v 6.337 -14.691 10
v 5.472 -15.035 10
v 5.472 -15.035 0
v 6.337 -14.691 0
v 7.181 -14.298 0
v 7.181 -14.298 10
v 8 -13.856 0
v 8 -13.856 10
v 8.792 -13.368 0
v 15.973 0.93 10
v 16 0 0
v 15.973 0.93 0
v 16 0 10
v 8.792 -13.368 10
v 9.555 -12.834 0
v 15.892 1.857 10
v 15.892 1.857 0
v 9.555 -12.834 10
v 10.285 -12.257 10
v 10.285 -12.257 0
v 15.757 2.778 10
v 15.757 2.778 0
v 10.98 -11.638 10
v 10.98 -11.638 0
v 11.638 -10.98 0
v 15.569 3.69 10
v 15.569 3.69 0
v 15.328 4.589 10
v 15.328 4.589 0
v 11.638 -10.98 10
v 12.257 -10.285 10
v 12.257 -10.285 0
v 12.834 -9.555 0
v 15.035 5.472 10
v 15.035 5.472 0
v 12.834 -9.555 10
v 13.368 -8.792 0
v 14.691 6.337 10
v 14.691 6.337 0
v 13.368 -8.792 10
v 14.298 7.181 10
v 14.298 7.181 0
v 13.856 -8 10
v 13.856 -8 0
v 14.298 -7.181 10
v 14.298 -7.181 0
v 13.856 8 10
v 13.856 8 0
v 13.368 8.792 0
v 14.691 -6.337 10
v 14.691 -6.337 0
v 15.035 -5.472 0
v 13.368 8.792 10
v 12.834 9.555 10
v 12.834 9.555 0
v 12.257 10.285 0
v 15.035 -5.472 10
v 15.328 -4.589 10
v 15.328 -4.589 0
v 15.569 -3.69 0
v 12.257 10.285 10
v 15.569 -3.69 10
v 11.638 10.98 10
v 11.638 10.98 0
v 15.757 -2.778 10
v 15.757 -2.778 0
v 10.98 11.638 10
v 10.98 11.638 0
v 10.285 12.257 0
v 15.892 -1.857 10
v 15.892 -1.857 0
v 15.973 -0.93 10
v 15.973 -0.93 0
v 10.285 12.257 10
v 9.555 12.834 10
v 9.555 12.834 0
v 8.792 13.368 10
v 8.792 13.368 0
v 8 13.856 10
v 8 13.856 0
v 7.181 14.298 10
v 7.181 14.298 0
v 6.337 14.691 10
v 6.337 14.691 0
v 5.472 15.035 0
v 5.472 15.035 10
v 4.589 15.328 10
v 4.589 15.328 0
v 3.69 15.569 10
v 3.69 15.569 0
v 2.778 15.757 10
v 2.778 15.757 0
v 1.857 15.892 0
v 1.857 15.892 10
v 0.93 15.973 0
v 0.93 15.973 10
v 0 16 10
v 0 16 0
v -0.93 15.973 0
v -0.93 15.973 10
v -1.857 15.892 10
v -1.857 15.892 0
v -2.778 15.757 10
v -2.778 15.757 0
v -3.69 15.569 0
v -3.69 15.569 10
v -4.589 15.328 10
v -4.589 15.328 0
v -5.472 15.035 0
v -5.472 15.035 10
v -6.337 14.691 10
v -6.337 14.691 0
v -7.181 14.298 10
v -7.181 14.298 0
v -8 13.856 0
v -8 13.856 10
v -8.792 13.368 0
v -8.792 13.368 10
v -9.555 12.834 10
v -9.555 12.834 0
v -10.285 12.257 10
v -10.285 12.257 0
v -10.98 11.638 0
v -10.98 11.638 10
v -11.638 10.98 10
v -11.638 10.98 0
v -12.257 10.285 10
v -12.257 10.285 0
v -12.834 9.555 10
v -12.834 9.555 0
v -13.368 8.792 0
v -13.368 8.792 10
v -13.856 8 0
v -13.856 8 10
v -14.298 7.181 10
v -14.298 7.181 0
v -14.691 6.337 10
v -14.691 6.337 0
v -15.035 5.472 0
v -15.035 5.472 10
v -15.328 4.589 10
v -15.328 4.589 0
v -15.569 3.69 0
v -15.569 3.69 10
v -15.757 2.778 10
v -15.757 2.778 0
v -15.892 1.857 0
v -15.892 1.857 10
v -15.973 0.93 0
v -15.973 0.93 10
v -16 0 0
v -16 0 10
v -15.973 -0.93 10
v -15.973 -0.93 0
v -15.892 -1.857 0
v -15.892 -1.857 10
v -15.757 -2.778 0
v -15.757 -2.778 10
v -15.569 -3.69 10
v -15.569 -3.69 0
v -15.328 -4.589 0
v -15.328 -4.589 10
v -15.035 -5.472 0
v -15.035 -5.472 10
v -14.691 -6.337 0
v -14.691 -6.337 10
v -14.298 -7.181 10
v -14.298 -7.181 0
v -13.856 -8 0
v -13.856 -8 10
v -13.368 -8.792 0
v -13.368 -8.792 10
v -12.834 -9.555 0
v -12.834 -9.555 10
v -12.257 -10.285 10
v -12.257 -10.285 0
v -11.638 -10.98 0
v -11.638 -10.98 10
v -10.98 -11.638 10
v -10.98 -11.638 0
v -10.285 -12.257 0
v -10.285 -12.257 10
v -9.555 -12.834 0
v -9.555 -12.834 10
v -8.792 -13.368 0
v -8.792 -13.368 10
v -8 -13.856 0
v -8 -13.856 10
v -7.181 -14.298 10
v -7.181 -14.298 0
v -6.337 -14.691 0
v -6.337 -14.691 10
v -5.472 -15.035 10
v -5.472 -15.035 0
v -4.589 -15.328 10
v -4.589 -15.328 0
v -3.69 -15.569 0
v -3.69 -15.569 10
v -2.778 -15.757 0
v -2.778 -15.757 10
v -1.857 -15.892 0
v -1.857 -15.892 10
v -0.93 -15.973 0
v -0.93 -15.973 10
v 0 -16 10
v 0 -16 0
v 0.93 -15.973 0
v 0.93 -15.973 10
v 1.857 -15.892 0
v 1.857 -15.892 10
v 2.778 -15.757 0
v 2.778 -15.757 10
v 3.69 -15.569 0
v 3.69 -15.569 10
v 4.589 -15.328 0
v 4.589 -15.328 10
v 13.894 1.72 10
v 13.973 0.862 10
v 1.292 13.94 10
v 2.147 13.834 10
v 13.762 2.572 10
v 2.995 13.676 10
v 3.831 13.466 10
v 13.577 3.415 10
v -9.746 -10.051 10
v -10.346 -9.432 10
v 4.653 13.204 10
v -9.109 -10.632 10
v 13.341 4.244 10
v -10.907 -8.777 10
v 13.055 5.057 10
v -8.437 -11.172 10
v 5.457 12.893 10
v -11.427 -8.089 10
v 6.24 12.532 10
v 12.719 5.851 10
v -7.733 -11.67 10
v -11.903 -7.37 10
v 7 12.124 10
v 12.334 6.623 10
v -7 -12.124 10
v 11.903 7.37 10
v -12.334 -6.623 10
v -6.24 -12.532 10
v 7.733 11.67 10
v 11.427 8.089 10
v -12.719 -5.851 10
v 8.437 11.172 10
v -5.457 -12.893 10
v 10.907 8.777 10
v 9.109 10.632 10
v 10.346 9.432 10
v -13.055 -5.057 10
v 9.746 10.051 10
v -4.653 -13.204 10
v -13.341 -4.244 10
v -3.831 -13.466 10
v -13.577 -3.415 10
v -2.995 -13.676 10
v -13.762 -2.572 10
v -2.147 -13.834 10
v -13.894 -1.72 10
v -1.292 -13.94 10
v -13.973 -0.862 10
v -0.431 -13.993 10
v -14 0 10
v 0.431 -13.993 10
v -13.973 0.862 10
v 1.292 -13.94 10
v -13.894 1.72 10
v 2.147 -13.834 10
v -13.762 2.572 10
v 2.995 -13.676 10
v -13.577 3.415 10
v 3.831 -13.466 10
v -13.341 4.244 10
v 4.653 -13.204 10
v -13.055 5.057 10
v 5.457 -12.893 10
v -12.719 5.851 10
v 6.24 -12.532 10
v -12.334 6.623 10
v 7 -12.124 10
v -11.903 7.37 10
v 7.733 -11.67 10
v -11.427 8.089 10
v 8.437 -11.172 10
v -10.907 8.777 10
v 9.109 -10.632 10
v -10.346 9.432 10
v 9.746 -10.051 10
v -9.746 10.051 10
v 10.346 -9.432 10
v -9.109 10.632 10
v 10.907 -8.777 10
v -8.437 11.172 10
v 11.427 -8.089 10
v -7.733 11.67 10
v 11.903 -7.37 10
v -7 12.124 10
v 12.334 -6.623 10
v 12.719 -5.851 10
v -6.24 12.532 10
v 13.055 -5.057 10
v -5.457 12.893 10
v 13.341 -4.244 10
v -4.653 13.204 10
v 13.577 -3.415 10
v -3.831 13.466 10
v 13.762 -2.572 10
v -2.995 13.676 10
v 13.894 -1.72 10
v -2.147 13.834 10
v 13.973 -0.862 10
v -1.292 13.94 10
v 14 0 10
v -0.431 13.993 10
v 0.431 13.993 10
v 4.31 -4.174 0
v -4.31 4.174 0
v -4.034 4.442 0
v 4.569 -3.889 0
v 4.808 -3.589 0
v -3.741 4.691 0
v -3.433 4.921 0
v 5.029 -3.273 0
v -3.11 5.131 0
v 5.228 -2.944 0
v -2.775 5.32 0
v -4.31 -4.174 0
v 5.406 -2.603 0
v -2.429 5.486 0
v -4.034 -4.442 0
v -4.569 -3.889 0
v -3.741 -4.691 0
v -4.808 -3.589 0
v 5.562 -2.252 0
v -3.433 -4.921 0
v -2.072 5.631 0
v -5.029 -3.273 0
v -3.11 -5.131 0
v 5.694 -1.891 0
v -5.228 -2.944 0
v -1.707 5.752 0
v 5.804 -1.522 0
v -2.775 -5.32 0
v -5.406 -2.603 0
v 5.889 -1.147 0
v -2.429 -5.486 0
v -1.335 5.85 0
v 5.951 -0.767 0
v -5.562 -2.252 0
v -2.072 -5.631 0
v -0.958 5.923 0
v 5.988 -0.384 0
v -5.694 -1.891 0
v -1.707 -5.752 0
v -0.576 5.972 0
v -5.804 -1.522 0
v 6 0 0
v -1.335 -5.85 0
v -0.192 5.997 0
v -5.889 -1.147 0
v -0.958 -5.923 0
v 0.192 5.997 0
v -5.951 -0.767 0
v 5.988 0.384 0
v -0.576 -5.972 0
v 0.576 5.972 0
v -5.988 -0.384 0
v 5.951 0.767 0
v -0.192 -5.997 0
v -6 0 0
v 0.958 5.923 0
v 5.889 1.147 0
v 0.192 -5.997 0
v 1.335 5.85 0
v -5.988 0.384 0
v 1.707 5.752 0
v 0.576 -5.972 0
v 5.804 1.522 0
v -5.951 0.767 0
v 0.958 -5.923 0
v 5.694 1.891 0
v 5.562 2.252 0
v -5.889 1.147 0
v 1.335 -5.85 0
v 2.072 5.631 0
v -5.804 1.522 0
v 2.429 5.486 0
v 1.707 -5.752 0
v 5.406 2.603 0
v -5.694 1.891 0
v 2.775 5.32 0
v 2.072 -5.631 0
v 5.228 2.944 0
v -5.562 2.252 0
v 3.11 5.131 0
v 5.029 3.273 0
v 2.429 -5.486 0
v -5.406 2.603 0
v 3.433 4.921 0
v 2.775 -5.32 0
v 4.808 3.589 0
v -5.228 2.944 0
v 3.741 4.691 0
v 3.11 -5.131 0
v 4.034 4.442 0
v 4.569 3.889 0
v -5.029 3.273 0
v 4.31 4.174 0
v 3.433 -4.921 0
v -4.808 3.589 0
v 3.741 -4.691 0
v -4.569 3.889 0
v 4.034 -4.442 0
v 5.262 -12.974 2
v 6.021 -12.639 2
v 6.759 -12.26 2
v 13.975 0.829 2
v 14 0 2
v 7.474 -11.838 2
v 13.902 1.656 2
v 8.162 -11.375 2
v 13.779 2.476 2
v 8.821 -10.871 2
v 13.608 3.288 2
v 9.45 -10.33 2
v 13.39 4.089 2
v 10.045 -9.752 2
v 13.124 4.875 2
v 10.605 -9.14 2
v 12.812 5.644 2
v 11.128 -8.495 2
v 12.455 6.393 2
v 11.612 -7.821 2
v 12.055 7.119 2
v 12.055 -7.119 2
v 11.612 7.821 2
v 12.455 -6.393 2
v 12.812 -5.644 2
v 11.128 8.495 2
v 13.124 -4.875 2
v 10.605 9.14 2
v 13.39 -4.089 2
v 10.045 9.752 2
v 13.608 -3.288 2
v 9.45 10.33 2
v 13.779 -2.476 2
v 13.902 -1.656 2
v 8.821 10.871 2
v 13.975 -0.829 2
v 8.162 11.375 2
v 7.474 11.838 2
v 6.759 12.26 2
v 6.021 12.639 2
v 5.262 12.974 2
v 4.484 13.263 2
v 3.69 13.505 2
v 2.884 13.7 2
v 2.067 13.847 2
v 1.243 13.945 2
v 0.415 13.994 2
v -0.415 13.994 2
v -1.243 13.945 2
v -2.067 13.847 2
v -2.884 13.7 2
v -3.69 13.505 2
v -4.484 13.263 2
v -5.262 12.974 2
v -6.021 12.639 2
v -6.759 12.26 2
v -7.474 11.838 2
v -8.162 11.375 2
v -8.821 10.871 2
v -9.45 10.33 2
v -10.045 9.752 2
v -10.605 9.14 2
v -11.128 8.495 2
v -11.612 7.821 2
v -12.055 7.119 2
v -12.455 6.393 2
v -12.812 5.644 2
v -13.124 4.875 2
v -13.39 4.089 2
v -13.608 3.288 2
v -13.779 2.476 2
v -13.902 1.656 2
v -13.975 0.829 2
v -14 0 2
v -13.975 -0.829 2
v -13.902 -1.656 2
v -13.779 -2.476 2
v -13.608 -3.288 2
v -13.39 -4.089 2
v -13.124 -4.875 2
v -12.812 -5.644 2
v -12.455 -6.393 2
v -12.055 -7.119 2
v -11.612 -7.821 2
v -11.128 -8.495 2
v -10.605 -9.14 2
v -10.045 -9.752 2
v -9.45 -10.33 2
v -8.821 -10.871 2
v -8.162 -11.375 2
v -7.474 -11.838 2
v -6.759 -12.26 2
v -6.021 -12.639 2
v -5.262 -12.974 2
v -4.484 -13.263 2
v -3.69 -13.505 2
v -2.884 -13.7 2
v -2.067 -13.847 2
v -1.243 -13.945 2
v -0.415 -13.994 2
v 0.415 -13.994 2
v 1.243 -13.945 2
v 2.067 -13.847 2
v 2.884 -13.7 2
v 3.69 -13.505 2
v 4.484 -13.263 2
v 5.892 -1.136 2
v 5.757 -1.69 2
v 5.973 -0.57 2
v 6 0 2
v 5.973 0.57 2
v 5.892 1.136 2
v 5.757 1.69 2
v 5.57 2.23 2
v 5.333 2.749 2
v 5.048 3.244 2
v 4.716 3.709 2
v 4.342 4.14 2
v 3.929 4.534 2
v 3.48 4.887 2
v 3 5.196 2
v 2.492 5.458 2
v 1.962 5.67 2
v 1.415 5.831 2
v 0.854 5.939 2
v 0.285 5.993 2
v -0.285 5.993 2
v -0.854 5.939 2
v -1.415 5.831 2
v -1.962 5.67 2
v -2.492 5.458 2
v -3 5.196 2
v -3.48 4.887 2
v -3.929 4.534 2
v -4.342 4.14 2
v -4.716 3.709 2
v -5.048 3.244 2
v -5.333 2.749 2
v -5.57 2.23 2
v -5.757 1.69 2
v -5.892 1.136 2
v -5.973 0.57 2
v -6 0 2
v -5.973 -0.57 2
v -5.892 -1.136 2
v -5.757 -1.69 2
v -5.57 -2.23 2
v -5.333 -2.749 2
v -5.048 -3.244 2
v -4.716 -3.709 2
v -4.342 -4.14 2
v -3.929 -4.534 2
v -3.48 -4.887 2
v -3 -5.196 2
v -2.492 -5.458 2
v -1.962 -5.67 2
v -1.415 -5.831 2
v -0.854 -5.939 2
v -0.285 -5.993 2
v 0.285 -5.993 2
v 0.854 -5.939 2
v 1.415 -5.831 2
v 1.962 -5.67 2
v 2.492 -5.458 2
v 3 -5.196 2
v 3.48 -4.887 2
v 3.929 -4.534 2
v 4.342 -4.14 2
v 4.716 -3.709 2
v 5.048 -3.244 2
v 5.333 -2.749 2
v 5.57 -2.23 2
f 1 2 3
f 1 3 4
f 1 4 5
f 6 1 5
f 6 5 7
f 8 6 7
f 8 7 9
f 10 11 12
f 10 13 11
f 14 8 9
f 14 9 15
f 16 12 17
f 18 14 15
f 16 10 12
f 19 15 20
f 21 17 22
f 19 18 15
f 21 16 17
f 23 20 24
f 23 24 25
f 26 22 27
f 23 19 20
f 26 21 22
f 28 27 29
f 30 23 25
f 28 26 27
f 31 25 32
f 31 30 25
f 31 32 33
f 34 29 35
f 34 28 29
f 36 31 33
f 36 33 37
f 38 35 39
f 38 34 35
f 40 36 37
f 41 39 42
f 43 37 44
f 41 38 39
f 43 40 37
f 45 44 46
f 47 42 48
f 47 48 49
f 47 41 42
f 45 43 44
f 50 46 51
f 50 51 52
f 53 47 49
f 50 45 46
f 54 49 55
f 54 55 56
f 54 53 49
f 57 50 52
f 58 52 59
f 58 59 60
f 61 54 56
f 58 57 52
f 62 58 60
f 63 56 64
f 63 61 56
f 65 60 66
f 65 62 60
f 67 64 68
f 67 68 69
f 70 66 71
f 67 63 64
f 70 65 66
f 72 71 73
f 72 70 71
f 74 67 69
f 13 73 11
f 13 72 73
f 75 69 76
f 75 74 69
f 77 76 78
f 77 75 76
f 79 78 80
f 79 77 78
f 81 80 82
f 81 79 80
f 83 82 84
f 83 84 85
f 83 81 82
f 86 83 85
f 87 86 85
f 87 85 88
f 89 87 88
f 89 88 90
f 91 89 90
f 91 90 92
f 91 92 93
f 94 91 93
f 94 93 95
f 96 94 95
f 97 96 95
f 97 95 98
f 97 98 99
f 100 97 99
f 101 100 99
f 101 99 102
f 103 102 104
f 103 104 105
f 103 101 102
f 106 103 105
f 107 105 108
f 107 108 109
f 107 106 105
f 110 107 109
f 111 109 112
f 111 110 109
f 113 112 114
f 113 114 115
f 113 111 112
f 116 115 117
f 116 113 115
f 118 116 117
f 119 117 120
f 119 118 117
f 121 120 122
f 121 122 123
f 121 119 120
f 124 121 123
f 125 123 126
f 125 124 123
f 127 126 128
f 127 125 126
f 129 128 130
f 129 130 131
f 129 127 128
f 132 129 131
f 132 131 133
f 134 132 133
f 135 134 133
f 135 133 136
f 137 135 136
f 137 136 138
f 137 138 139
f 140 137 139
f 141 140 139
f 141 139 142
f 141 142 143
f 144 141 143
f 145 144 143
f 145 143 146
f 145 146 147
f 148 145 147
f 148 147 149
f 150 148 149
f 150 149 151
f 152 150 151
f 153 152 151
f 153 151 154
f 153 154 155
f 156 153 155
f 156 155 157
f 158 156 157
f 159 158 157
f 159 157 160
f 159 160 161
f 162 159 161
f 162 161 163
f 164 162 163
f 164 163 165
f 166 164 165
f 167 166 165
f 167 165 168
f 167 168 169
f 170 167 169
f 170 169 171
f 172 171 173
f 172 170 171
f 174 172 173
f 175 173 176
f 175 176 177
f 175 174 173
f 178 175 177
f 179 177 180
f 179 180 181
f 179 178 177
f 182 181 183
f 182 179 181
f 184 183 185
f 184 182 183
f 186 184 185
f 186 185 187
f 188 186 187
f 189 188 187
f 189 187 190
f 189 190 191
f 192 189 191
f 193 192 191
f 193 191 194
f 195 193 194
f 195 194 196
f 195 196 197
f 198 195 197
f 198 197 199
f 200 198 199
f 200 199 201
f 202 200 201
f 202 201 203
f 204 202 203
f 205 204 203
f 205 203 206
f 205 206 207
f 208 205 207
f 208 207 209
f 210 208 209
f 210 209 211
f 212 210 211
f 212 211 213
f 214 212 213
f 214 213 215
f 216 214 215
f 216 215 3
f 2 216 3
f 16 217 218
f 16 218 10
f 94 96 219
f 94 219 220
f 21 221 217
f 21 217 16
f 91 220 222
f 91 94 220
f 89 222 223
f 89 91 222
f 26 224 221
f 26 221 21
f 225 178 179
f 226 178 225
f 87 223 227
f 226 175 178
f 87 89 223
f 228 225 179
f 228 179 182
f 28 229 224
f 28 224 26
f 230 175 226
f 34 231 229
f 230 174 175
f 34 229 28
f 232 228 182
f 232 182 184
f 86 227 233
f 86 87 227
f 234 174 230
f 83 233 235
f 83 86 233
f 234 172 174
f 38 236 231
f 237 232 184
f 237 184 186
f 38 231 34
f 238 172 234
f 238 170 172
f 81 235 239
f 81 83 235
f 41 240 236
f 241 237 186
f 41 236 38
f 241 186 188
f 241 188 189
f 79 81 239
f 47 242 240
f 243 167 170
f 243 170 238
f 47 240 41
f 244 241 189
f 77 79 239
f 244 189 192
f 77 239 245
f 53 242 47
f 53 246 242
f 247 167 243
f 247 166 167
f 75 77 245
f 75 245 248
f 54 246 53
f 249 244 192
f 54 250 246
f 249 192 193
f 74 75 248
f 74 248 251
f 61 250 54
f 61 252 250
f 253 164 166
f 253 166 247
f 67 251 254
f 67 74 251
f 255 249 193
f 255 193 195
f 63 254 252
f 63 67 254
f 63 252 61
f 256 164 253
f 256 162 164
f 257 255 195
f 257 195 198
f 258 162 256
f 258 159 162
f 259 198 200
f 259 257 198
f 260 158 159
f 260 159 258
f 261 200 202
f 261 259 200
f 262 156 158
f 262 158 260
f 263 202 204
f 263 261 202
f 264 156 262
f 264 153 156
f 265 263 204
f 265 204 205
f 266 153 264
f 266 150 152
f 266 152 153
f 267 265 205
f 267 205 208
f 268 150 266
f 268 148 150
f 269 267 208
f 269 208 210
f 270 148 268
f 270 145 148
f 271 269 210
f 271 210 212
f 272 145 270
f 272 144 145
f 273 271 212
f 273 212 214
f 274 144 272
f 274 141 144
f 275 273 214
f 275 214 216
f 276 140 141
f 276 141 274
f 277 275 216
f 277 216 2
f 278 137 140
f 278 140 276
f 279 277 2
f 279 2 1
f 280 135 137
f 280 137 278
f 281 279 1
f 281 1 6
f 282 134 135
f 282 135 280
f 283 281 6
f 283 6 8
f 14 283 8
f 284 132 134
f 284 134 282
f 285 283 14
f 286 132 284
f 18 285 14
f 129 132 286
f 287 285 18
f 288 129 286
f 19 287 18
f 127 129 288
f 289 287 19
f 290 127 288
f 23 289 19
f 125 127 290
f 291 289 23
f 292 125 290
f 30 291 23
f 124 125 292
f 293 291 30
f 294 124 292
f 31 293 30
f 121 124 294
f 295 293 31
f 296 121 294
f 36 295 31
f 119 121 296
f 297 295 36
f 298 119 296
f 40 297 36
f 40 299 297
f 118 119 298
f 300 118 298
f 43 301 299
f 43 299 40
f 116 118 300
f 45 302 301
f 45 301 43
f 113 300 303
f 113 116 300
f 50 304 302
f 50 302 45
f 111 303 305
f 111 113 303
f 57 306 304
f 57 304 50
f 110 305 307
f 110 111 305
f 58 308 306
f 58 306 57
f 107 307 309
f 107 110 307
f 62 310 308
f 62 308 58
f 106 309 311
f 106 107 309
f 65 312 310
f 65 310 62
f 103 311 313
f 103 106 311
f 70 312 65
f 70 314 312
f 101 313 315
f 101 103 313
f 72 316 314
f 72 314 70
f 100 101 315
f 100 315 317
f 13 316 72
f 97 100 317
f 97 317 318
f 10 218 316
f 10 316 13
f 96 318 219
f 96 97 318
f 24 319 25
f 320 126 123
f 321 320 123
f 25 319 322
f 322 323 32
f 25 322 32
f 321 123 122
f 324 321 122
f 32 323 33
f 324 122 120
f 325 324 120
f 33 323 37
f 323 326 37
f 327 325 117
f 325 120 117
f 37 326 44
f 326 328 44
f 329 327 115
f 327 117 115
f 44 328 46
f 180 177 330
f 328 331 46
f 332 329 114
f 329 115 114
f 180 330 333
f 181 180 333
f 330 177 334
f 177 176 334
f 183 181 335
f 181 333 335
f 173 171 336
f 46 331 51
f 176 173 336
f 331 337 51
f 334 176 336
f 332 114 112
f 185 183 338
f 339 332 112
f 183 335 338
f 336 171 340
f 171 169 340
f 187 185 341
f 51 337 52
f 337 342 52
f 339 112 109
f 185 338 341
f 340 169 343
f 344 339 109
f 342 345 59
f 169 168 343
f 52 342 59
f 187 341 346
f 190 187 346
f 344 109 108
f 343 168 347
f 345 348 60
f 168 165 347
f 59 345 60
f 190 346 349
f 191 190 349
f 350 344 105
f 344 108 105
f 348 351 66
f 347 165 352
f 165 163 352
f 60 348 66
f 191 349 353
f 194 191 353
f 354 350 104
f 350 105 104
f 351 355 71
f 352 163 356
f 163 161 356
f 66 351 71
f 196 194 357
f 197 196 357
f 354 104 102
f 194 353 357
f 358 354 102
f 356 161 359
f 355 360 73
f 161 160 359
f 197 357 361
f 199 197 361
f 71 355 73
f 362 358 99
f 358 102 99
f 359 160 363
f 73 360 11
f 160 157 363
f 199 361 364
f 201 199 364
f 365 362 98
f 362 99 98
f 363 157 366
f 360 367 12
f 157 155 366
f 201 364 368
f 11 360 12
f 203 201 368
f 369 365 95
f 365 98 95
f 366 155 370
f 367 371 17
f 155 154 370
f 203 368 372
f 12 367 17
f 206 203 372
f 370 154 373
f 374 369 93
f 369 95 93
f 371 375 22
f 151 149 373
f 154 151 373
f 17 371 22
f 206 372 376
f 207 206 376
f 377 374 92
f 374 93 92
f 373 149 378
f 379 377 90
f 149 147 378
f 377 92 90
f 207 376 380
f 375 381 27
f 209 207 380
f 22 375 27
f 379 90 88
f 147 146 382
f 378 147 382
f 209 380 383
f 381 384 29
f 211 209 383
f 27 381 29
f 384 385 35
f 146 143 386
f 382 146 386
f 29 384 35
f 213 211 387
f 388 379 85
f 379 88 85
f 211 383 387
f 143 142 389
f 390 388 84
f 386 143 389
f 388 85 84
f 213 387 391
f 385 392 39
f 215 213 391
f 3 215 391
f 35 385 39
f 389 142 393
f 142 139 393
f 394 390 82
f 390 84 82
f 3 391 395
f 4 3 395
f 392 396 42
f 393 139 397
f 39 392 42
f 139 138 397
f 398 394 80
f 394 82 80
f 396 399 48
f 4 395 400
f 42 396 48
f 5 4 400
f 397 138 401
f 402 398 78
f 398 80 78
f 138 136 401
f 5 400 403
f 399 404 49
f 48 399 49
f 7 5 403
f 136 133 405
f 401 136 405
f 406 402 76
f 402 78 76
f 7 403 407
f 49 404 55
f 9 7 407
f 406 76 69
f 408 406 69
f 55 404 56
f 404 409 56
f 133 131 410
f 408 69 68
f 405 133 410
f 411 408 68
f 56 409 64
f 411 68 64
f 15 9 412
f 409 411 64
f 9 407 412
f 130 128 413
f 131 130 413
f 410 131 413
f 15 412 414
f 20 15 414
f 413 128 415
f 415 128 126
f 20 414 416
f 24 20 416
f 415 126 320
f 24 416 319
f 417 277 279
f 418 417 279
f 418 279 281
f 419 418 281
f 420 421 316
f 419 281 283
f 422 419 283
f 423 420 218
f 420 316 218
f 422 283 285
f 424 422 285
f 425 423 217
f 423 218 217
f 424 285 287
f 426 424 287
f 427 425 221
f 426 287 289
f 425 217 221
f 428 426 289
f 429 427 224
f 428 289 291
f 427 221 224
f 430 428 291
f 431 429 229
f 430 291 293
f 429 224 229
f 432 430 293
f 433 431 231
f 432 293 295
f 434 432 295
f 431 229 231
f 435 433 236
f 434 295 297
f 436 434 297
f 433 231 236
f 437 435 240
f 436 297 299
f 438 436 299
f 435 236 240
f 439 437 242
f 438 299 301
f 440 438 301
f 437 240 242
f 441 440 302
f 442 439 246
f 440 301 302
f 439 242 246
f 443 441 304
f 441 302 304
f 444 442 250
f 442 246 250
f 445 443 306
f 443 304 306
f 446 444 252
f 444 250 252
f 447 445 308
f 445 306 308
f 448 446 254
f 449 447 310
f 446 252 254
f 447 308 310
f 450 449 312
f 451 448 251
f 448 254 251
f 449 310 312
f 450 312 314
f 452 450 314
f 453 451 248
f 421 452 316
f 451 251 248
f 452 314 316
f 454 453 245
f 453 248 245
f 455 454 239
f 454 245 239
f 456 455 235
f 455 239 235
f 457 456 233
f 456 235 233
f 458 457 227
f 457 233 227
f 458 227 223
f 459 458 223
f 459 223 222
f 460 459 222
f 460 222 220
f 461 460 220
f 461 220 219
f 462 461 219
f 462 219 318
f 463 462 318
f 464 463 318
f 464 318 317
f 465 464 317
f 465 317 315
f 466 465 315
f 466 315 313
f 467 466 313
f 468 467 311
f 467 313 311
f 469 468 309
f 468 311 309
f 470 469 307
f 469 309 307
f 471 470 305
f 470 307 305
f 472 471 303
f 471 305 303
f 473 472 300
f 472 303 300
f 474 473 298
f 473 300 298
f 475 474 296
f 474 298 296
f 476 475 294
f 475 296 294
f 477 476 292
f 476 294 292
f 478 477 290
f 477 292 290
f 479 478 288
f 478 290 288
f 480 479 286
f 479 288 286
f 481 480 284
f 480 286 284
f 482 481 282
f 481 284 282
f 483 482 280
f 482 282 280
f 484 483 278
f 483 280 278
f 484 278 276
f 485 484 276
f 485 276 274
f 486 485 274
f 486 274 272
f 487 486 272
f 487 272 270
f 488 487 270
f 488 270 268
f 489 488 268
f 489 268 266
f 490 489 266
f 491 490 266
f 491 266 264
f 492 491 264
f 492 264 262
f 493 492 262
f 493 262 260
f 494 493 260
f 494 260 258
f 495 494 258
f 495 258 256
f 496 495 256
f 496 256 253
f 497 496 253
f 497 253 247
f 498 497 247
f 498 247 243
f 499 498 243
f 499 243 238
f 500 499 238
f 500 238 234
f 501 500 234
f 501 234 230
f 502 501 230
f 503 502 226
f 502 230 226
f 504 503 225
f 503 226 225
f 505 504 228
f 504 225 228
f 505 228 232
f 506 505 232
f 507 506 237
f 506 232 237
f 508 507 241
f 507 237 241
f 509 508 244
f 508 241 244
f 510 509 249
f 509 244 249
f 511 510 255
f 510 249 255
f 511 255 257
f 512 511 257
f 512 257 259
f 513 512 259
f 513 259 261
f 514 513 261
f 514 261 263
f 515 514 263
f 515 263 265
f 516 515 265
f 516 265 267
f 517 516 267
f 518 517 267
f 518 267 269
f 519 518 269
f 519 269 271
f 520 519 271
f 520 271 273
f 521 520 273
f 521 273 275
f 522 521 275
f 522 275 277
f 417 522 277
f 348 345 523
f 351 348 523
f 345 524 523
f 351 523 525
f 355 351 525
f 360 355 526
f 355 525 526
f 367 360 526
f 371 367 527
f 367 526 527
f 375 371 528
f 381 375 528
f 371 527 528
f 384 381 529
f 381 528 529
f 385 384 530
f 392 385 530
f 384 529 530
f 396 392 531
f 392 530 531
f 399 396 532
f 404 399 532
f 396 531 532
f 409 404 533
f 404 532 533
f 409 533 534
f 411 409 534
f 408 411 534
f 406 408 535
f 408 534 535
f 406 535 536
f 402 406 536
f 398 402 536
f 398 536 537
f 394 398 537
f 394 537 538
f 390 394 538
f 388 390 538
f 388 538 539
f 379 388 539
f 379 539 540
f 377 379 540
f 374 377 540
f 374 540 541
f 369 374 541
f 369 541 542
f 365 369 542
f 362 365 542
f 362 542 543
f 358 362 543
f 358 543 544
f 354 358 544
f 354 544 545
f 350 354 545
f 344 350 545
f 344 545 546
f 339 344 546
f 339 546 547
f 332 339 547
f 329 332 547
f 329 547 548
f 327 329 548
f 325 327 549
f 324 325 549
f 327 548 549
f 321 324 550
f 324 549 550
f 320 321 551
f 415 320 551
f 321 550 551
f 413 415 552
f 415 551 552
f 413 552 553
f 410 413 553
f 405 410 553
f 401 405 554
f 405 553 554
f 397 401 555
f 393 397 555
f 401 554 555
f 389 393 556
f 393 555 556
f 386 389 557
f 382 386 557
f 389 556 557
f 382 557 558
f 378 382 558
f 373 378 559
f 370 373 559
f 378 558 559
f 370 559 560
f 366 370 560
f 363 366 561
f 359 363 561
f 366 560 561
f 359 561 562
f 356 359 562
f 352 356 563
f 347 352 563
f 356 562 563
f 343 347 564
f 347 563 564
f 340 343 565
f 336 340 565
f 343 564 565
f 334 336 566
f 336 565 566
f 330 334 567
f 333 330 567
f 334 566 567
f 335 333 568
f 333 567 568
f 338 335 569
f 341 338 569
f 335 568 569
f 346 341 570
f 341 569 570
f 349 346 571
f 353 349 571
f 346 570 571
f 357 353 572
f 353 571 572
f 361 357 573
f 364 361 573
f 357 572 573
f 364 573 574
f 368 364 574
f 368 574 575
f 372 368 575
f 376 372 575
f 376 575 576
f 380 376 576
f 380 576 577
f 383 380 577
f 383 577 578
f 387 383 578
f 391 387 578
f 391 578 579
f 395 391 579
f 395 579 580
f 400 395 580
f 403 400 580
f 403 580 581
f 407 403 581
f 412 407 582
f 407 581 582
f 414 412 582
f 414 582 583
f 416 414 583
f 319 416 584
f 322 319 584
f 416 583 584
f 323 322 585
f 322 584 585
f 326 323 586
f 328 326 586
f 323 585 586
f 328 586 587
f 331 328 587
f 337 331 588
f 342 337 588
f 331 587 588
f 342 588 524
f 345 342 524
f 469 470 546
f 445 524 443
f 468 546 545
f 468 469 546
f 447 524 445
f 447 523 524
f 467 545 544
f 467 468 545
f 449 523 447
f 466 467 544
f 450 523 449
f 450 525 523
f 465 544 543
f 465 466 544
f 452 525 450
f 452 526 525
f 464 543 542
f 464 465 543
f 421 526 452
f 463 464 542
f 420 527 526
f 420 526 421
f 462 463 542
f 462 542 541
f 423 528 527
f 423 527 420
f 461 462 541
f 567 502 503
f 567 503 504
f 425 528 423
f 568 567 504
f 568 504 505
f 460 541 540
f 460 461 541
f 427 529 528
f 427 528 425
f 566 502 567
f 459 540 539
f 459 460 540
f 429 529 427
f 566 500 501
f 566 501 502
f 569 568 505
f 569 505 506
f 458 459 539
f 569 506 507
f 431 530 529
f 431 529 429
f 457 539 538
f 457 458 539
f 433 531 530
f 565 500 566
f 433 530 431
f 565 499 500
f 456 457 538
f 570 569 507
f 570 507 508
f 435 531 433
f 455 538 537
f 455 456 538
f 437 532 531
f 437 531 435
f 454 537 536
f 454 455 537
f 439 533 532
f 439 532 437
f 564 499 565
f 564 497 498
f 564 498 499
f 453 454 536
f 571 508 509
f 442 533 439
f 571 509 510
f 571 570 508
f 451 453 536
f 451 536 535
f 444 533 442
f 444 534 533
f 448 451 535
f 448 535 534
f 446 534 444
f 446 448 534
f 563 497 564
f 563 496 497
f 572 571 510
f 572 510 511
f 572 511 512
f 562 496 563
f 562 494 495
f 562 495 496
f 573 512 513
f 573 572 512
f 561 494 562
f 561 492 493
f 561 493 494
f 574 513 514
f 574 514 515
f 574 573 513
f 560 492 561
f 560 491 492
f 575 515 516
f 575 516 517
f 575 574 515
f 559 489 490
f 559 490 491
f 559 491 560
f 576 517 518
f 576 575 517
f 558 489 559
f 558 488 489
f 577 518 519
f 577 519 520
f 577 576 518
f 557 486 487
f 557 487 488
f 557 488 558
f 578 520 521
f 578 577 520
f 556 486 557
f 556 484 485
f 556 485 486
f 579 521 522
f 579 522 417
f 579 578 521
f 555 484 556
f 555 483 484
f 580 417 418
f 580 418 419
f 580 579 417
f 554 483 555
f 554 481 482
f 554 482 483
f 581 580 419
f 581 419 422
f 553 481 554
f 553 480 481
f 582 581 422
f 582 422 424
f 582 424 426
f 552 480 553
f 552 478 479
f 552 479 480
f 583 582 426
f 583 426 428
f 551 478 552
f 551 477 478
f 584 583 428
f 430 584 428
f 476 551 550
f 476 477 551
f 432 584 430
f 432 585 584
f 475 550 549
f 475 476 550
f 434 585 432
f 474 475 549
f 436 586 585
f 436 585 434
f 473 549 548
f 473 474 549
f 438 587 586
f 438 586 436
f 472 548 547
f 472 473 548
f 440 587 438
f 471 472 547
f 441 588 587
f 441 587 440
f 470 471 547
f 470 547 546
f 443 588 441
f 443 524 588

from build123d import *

# Parameters (mm, degrees)
CYLINDER002_R     = 6
CYLINDER002_DEPTH = 10
CYLINDER_R        = 14
CYLINDER_DEPTH    = 13
CYLINDER001_R     = 16
CYLINDER001_DEPTH = 10


with BuildPart() as cylinder002:
    # Cylinder002 → Cylinder002 (new body)
    with BuildSketch(Plane.XY):
        Circle(CYLINDER002_R)
    extrude(amount=CYLINDER002_DEPTH)


with BuildPart() as cylinder:
    # Cylinder → Cylinder (new body)
    with BuildSketch(Plane.XY.offset(2)):
        Circle(CYLINDER_R)
    extrude(amount=CYLINDER_DEPTH)


with BuildPart() as cut001:
    # Cylinder001 → Cylinder001 (new body)
    with BuildSketch(Plane.XY):
        Circle(CYLINDER001_R)
    extrude(amount=CYLINDER001_DEPTH)

    # Cut: cut Cylinder
    add(cylinder.part, mode=Mode.SUBTRACT)

    # Cut001: cut Cylinder002
    add(cylinder002.part, mode=Mode.SUBTRACT)


solid = cut001.part
